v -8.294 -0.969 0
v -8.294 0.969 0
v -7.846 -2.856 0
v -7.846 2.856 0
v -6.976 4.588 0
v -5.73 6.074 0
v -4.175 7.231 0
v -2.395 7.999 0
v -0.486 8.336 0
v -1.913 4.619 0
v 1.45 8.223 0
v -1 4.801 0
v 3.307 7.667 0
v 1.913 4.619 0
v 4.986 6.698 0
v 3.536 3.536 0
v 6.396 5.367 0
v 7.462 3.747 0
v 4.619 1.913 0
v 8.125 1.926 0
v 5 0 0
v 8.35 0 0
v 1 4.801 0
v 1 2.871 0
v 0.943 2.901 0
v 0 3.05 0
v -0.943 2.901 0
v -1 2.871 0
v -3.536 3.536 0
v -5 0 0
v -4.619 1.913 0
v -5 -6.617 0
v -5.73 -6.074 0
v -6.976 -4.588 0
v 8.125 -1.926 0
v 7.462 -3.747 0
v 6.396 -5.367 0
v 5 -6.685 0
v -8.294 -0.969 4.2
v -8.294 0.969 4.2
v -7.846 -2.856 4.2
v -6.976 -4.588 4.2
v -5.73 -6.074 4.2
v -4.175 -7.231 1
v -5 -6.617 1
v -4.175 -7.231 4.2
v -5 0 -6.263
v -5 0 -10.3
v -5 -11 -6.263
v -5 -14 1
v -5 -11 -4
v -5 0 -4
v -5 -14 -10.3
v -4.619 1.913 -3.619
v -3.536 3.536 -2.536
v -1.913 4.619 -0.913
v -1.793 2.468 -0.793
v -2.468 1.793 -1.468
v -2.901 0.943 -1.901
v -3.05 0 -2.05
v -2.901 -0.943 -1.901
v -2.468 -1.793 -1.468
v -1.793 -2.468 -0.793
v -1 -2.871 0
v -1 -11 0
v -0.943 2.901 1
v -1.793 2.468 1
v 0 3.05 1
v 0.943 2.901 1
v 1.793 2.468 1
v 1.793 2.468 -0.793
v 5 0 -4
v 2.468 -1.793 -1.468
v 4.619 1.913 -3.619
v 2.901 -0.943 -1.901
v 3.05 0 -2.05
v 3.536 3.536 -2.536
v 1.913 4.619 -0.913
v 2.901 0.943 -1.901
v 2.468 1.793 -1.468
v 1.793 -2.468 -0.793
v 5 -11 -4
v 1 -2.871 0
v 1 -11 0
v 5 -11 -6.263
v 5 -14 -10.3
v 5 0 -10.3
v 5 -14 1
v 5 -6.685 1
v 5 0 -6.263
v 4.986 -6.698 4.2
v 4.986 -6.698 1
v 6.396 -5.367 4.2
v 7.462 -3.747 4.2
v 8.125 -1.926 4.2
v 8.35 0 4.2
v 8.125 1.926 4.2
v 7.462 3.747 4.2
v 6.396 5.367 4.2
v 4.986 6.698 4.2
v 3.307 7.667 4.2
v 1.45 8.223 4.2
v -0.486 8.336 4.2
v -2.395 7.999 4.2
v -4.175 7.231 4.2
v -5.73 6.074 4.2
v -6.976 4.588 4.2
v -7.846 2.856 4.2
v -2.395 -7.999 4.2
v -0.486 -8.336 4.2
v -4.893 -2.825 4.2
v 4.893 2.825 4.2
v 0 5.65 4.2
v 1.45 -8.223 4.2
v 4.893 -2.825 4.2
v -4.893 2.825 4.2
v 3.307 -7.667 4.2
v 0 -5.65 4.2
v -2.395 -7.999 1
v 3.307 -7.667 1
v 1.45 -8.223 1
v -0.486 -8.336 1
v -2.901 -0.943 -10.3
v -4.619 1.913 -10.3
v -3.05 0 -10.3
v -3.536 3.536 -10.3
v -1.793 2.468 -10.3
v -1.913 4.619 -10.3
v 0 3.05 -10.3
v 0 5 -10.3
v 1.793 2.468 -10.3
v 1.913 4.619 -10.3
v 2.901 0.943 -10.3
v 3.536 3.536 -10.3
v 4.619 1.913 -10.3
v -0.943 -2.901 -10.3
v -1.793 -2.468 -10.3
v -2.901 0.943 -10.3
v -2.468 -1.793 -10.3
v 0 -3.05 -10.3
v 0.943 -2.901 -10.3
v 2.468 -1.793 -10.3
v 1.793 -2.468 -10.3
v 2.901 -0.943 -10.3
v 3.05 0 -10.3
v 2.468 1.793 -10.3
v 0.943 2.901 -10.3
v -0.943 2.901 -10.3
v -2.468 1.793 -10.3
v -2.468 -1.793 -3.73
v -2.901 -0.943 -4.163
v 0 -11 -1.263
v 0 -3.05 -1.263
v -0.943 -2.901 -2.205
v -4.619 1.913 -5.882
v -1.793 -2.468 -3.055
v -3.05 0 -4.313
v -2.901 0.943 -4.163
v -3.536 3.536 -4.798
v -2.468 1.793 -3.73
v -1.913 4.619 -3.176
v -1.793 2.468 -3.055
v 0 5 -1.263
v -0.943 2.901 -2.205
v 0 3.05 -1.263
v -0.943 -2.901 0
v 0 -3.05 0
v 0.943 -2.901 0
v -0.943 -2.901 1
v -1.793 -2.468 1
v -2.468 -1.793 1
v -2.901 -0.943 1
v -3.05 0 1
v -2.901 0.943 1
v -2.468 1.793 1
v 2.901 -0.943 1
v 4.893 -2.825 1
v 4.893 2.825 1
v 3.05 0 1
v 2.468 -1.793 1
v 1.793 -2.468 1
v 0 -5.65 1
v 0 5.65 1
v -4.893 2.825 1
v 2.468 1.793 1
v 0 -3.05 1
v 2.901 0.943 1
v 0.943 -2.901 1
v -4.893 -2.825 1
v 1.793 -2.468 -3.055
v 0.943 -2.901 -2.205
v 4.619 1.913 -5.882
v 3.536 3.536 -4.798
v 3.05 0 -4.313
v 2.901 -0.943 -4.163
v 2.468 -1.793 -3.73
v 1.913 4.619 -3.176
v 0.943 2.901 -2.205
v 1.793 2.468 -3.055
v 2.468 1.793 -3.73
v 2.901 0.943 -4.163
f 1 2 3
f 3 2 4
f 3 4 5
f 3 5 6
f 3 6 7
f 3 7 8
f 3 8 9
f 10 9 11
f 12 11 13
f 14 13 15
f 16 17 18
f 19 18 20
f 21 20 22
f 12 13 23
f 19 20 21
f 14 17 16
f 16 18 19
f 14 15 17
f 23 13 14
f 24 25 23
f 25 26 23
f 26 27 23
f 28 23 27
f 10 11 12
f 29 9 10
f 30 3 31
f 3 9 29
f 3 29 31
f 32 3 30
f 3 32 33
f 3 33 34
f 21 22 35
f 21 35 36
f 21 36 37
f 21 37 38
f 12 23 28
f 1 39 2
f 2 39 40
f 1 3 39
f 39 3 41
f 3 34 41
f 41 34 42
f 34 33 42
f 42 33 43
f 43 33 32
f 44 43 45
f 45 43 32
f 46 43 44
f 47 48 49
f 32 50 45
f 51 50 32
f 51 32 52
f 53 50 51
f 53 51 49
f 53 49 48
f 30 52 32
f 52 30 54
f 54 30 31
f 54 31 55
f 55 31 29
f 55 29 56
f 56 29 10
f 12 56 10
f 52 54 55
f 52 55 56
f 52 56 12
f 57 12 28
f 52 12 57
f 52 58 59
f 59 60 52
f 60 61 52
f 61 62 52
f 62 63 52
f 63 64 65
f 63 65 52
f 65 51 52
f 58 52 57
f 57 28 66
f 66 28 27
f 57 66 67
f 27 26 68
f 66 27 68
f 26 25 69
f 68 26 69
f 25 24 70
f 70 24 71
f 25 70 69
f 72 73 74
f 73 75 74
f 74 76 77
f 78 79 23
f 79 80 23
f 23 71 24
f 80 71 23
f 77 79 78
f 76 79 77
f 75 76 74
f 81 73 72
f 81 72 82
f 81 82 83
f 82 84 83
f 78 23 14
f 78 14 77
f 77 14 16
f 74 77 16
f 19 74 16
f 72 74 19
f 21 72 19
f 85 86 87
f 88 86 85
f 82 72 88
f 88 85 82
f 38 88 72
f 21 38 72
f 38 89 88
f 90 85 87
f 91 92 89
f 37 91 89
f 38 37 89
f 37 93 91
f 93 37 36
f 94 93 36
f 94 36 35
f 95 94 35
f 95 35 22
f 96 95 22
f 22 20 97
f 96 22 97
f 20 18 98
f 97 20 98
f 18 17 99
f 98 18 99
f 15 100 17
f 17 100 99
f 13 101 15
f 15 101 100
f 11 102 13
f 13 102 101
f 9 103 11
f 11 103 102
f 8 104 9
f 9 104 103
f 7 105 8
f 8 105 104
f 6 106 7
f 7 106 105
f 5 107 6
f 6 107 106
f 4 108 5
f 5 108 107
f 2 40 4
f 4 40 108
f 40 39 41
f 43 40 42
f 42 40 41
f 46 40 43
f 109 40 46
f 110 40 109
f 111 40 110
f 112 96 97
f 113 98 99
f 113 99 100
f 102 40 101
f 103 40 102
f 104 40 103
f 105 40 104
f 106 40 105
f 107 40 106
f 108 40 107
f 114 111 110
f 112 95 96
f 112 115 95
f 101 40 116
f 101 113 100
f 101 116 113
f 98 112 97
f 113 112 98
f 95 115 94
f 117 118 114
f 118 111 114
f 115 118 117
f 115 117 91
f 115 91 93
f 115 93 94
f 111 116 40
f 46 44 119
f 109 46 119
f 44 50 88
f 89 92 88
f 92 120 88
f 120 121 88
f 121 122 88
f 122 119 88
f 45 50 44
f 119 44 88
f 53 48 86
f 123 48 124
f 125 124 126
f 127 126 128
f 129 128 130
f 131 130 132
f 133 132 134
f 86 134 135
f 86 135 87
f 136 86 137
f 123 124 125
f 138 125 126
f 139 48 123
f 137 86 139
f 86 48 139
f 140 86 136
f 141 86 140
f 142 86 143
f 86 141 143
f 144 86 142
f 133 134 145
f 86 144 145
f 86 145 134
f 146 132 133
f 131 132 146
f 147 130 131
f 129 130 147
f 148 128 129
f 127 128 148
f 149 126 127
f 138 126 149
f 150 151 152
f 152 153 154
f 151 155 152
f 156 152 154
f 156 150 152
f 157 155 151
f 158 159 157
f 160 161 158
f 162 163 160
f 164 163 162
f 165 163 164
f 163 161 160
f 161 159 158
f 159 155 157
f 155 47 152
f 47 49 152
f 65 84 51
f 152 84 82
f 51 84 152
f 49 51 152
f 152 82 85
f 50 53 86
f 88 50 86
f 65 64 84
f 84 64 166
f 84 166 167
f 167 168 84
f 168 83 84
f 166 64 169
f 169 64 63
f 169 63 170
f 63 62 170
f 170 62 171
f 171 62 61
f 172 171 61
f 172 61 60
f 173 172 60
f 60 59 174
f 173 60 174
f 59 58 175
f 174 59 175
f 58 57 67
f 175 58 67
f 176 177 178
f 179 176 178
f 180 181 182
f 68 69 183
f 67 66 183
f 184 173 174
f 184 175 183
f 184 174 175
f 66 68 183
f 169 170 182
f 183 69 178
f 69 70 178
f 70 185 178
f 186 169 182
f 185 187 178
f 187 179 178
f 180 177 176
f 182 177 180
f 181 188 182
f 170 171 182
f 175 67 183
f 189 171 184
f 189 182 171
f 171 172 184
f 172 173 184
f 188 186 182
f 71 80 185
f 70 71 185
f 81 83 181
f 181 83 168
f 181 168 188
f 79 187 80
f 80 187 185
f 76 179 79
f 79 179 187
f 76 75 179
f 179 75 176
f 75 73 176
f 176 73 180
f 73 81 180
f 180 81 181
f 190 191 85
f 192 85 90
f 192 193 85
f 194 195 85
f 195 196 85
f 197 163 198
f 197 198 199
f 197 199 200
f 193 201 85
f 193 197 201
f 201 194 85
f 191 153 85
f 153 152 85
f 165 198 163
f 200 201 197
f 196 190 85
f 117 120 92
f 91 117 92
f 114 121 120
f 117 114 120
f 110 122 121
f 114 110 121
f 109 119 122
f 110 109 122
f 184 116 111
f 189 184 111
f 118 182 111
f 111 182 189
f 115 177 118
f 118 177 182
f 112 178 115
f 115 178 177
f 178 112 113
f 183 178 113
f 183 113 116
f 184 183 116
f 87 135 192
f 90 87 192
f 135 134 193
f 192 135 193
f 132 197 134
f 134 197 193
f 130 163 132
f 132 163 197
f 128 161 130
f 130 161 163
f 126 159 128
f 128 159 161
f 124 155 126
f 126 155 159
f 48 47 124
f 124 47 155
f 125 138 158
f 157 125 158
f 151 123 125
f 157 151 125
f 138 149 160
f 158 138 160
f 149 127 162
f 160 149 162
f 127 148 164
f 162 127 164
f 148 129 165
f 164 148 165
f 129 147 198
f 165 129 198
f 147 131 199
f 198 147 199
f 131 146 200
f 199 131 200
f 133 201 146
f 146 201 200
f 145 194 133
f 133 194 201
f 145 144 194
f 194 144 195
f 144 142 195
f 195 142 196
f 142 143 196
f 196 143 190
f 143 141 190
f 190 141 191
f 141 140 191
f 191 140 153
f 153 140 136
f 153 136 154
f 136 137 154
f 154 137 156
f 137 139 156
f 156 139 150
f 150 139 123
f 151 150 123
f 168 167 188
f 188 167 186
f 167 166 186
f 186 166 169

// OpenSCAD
tube_inner_r = 16.5/2 + 0.1;
wall = 1.6;
wall_l = 20;
m6_offset = 11;
head_width = 5.65;
head_h = 3.3;

part_h = 8 + head_h;

difference(){
	part();
	mould();
}


module part(){
	rotate([0,0,180])translate([-5,0,-1 * part_h + 1])cube([10,3 + m6_offset,part_h]);
	cylinder(r=tube_inner_r,h=head_h + 0.9);
	translate([0,0,-1 * part_h + 1])cylinder(r=5,h=part_h + 0.9);
}


module mould(){
	translate([0,m6_offset * -1,0]){
		sides();
		rotate([0,180,0])translate([0,m6_offset,-1.1])cylinder(r=3.05,h=100,$fn=20);
		translate([0,m6_offset,1])rotate([0,0,90])cylinder(r=head_width,h=head_h,$fn=6);
	}
}


module sides(l=30){
	translate([0,0,1])
	difference(){
		rotate([0,45,0]){
			translate([0,0,-1 * wall_l])side(l);
			rotate([0,90,0])side(l);
		}
		cube([10,l * 3,2],center=true);
	}
}

module side(l=30){
	cube([wall,l,wall_l]);
}
